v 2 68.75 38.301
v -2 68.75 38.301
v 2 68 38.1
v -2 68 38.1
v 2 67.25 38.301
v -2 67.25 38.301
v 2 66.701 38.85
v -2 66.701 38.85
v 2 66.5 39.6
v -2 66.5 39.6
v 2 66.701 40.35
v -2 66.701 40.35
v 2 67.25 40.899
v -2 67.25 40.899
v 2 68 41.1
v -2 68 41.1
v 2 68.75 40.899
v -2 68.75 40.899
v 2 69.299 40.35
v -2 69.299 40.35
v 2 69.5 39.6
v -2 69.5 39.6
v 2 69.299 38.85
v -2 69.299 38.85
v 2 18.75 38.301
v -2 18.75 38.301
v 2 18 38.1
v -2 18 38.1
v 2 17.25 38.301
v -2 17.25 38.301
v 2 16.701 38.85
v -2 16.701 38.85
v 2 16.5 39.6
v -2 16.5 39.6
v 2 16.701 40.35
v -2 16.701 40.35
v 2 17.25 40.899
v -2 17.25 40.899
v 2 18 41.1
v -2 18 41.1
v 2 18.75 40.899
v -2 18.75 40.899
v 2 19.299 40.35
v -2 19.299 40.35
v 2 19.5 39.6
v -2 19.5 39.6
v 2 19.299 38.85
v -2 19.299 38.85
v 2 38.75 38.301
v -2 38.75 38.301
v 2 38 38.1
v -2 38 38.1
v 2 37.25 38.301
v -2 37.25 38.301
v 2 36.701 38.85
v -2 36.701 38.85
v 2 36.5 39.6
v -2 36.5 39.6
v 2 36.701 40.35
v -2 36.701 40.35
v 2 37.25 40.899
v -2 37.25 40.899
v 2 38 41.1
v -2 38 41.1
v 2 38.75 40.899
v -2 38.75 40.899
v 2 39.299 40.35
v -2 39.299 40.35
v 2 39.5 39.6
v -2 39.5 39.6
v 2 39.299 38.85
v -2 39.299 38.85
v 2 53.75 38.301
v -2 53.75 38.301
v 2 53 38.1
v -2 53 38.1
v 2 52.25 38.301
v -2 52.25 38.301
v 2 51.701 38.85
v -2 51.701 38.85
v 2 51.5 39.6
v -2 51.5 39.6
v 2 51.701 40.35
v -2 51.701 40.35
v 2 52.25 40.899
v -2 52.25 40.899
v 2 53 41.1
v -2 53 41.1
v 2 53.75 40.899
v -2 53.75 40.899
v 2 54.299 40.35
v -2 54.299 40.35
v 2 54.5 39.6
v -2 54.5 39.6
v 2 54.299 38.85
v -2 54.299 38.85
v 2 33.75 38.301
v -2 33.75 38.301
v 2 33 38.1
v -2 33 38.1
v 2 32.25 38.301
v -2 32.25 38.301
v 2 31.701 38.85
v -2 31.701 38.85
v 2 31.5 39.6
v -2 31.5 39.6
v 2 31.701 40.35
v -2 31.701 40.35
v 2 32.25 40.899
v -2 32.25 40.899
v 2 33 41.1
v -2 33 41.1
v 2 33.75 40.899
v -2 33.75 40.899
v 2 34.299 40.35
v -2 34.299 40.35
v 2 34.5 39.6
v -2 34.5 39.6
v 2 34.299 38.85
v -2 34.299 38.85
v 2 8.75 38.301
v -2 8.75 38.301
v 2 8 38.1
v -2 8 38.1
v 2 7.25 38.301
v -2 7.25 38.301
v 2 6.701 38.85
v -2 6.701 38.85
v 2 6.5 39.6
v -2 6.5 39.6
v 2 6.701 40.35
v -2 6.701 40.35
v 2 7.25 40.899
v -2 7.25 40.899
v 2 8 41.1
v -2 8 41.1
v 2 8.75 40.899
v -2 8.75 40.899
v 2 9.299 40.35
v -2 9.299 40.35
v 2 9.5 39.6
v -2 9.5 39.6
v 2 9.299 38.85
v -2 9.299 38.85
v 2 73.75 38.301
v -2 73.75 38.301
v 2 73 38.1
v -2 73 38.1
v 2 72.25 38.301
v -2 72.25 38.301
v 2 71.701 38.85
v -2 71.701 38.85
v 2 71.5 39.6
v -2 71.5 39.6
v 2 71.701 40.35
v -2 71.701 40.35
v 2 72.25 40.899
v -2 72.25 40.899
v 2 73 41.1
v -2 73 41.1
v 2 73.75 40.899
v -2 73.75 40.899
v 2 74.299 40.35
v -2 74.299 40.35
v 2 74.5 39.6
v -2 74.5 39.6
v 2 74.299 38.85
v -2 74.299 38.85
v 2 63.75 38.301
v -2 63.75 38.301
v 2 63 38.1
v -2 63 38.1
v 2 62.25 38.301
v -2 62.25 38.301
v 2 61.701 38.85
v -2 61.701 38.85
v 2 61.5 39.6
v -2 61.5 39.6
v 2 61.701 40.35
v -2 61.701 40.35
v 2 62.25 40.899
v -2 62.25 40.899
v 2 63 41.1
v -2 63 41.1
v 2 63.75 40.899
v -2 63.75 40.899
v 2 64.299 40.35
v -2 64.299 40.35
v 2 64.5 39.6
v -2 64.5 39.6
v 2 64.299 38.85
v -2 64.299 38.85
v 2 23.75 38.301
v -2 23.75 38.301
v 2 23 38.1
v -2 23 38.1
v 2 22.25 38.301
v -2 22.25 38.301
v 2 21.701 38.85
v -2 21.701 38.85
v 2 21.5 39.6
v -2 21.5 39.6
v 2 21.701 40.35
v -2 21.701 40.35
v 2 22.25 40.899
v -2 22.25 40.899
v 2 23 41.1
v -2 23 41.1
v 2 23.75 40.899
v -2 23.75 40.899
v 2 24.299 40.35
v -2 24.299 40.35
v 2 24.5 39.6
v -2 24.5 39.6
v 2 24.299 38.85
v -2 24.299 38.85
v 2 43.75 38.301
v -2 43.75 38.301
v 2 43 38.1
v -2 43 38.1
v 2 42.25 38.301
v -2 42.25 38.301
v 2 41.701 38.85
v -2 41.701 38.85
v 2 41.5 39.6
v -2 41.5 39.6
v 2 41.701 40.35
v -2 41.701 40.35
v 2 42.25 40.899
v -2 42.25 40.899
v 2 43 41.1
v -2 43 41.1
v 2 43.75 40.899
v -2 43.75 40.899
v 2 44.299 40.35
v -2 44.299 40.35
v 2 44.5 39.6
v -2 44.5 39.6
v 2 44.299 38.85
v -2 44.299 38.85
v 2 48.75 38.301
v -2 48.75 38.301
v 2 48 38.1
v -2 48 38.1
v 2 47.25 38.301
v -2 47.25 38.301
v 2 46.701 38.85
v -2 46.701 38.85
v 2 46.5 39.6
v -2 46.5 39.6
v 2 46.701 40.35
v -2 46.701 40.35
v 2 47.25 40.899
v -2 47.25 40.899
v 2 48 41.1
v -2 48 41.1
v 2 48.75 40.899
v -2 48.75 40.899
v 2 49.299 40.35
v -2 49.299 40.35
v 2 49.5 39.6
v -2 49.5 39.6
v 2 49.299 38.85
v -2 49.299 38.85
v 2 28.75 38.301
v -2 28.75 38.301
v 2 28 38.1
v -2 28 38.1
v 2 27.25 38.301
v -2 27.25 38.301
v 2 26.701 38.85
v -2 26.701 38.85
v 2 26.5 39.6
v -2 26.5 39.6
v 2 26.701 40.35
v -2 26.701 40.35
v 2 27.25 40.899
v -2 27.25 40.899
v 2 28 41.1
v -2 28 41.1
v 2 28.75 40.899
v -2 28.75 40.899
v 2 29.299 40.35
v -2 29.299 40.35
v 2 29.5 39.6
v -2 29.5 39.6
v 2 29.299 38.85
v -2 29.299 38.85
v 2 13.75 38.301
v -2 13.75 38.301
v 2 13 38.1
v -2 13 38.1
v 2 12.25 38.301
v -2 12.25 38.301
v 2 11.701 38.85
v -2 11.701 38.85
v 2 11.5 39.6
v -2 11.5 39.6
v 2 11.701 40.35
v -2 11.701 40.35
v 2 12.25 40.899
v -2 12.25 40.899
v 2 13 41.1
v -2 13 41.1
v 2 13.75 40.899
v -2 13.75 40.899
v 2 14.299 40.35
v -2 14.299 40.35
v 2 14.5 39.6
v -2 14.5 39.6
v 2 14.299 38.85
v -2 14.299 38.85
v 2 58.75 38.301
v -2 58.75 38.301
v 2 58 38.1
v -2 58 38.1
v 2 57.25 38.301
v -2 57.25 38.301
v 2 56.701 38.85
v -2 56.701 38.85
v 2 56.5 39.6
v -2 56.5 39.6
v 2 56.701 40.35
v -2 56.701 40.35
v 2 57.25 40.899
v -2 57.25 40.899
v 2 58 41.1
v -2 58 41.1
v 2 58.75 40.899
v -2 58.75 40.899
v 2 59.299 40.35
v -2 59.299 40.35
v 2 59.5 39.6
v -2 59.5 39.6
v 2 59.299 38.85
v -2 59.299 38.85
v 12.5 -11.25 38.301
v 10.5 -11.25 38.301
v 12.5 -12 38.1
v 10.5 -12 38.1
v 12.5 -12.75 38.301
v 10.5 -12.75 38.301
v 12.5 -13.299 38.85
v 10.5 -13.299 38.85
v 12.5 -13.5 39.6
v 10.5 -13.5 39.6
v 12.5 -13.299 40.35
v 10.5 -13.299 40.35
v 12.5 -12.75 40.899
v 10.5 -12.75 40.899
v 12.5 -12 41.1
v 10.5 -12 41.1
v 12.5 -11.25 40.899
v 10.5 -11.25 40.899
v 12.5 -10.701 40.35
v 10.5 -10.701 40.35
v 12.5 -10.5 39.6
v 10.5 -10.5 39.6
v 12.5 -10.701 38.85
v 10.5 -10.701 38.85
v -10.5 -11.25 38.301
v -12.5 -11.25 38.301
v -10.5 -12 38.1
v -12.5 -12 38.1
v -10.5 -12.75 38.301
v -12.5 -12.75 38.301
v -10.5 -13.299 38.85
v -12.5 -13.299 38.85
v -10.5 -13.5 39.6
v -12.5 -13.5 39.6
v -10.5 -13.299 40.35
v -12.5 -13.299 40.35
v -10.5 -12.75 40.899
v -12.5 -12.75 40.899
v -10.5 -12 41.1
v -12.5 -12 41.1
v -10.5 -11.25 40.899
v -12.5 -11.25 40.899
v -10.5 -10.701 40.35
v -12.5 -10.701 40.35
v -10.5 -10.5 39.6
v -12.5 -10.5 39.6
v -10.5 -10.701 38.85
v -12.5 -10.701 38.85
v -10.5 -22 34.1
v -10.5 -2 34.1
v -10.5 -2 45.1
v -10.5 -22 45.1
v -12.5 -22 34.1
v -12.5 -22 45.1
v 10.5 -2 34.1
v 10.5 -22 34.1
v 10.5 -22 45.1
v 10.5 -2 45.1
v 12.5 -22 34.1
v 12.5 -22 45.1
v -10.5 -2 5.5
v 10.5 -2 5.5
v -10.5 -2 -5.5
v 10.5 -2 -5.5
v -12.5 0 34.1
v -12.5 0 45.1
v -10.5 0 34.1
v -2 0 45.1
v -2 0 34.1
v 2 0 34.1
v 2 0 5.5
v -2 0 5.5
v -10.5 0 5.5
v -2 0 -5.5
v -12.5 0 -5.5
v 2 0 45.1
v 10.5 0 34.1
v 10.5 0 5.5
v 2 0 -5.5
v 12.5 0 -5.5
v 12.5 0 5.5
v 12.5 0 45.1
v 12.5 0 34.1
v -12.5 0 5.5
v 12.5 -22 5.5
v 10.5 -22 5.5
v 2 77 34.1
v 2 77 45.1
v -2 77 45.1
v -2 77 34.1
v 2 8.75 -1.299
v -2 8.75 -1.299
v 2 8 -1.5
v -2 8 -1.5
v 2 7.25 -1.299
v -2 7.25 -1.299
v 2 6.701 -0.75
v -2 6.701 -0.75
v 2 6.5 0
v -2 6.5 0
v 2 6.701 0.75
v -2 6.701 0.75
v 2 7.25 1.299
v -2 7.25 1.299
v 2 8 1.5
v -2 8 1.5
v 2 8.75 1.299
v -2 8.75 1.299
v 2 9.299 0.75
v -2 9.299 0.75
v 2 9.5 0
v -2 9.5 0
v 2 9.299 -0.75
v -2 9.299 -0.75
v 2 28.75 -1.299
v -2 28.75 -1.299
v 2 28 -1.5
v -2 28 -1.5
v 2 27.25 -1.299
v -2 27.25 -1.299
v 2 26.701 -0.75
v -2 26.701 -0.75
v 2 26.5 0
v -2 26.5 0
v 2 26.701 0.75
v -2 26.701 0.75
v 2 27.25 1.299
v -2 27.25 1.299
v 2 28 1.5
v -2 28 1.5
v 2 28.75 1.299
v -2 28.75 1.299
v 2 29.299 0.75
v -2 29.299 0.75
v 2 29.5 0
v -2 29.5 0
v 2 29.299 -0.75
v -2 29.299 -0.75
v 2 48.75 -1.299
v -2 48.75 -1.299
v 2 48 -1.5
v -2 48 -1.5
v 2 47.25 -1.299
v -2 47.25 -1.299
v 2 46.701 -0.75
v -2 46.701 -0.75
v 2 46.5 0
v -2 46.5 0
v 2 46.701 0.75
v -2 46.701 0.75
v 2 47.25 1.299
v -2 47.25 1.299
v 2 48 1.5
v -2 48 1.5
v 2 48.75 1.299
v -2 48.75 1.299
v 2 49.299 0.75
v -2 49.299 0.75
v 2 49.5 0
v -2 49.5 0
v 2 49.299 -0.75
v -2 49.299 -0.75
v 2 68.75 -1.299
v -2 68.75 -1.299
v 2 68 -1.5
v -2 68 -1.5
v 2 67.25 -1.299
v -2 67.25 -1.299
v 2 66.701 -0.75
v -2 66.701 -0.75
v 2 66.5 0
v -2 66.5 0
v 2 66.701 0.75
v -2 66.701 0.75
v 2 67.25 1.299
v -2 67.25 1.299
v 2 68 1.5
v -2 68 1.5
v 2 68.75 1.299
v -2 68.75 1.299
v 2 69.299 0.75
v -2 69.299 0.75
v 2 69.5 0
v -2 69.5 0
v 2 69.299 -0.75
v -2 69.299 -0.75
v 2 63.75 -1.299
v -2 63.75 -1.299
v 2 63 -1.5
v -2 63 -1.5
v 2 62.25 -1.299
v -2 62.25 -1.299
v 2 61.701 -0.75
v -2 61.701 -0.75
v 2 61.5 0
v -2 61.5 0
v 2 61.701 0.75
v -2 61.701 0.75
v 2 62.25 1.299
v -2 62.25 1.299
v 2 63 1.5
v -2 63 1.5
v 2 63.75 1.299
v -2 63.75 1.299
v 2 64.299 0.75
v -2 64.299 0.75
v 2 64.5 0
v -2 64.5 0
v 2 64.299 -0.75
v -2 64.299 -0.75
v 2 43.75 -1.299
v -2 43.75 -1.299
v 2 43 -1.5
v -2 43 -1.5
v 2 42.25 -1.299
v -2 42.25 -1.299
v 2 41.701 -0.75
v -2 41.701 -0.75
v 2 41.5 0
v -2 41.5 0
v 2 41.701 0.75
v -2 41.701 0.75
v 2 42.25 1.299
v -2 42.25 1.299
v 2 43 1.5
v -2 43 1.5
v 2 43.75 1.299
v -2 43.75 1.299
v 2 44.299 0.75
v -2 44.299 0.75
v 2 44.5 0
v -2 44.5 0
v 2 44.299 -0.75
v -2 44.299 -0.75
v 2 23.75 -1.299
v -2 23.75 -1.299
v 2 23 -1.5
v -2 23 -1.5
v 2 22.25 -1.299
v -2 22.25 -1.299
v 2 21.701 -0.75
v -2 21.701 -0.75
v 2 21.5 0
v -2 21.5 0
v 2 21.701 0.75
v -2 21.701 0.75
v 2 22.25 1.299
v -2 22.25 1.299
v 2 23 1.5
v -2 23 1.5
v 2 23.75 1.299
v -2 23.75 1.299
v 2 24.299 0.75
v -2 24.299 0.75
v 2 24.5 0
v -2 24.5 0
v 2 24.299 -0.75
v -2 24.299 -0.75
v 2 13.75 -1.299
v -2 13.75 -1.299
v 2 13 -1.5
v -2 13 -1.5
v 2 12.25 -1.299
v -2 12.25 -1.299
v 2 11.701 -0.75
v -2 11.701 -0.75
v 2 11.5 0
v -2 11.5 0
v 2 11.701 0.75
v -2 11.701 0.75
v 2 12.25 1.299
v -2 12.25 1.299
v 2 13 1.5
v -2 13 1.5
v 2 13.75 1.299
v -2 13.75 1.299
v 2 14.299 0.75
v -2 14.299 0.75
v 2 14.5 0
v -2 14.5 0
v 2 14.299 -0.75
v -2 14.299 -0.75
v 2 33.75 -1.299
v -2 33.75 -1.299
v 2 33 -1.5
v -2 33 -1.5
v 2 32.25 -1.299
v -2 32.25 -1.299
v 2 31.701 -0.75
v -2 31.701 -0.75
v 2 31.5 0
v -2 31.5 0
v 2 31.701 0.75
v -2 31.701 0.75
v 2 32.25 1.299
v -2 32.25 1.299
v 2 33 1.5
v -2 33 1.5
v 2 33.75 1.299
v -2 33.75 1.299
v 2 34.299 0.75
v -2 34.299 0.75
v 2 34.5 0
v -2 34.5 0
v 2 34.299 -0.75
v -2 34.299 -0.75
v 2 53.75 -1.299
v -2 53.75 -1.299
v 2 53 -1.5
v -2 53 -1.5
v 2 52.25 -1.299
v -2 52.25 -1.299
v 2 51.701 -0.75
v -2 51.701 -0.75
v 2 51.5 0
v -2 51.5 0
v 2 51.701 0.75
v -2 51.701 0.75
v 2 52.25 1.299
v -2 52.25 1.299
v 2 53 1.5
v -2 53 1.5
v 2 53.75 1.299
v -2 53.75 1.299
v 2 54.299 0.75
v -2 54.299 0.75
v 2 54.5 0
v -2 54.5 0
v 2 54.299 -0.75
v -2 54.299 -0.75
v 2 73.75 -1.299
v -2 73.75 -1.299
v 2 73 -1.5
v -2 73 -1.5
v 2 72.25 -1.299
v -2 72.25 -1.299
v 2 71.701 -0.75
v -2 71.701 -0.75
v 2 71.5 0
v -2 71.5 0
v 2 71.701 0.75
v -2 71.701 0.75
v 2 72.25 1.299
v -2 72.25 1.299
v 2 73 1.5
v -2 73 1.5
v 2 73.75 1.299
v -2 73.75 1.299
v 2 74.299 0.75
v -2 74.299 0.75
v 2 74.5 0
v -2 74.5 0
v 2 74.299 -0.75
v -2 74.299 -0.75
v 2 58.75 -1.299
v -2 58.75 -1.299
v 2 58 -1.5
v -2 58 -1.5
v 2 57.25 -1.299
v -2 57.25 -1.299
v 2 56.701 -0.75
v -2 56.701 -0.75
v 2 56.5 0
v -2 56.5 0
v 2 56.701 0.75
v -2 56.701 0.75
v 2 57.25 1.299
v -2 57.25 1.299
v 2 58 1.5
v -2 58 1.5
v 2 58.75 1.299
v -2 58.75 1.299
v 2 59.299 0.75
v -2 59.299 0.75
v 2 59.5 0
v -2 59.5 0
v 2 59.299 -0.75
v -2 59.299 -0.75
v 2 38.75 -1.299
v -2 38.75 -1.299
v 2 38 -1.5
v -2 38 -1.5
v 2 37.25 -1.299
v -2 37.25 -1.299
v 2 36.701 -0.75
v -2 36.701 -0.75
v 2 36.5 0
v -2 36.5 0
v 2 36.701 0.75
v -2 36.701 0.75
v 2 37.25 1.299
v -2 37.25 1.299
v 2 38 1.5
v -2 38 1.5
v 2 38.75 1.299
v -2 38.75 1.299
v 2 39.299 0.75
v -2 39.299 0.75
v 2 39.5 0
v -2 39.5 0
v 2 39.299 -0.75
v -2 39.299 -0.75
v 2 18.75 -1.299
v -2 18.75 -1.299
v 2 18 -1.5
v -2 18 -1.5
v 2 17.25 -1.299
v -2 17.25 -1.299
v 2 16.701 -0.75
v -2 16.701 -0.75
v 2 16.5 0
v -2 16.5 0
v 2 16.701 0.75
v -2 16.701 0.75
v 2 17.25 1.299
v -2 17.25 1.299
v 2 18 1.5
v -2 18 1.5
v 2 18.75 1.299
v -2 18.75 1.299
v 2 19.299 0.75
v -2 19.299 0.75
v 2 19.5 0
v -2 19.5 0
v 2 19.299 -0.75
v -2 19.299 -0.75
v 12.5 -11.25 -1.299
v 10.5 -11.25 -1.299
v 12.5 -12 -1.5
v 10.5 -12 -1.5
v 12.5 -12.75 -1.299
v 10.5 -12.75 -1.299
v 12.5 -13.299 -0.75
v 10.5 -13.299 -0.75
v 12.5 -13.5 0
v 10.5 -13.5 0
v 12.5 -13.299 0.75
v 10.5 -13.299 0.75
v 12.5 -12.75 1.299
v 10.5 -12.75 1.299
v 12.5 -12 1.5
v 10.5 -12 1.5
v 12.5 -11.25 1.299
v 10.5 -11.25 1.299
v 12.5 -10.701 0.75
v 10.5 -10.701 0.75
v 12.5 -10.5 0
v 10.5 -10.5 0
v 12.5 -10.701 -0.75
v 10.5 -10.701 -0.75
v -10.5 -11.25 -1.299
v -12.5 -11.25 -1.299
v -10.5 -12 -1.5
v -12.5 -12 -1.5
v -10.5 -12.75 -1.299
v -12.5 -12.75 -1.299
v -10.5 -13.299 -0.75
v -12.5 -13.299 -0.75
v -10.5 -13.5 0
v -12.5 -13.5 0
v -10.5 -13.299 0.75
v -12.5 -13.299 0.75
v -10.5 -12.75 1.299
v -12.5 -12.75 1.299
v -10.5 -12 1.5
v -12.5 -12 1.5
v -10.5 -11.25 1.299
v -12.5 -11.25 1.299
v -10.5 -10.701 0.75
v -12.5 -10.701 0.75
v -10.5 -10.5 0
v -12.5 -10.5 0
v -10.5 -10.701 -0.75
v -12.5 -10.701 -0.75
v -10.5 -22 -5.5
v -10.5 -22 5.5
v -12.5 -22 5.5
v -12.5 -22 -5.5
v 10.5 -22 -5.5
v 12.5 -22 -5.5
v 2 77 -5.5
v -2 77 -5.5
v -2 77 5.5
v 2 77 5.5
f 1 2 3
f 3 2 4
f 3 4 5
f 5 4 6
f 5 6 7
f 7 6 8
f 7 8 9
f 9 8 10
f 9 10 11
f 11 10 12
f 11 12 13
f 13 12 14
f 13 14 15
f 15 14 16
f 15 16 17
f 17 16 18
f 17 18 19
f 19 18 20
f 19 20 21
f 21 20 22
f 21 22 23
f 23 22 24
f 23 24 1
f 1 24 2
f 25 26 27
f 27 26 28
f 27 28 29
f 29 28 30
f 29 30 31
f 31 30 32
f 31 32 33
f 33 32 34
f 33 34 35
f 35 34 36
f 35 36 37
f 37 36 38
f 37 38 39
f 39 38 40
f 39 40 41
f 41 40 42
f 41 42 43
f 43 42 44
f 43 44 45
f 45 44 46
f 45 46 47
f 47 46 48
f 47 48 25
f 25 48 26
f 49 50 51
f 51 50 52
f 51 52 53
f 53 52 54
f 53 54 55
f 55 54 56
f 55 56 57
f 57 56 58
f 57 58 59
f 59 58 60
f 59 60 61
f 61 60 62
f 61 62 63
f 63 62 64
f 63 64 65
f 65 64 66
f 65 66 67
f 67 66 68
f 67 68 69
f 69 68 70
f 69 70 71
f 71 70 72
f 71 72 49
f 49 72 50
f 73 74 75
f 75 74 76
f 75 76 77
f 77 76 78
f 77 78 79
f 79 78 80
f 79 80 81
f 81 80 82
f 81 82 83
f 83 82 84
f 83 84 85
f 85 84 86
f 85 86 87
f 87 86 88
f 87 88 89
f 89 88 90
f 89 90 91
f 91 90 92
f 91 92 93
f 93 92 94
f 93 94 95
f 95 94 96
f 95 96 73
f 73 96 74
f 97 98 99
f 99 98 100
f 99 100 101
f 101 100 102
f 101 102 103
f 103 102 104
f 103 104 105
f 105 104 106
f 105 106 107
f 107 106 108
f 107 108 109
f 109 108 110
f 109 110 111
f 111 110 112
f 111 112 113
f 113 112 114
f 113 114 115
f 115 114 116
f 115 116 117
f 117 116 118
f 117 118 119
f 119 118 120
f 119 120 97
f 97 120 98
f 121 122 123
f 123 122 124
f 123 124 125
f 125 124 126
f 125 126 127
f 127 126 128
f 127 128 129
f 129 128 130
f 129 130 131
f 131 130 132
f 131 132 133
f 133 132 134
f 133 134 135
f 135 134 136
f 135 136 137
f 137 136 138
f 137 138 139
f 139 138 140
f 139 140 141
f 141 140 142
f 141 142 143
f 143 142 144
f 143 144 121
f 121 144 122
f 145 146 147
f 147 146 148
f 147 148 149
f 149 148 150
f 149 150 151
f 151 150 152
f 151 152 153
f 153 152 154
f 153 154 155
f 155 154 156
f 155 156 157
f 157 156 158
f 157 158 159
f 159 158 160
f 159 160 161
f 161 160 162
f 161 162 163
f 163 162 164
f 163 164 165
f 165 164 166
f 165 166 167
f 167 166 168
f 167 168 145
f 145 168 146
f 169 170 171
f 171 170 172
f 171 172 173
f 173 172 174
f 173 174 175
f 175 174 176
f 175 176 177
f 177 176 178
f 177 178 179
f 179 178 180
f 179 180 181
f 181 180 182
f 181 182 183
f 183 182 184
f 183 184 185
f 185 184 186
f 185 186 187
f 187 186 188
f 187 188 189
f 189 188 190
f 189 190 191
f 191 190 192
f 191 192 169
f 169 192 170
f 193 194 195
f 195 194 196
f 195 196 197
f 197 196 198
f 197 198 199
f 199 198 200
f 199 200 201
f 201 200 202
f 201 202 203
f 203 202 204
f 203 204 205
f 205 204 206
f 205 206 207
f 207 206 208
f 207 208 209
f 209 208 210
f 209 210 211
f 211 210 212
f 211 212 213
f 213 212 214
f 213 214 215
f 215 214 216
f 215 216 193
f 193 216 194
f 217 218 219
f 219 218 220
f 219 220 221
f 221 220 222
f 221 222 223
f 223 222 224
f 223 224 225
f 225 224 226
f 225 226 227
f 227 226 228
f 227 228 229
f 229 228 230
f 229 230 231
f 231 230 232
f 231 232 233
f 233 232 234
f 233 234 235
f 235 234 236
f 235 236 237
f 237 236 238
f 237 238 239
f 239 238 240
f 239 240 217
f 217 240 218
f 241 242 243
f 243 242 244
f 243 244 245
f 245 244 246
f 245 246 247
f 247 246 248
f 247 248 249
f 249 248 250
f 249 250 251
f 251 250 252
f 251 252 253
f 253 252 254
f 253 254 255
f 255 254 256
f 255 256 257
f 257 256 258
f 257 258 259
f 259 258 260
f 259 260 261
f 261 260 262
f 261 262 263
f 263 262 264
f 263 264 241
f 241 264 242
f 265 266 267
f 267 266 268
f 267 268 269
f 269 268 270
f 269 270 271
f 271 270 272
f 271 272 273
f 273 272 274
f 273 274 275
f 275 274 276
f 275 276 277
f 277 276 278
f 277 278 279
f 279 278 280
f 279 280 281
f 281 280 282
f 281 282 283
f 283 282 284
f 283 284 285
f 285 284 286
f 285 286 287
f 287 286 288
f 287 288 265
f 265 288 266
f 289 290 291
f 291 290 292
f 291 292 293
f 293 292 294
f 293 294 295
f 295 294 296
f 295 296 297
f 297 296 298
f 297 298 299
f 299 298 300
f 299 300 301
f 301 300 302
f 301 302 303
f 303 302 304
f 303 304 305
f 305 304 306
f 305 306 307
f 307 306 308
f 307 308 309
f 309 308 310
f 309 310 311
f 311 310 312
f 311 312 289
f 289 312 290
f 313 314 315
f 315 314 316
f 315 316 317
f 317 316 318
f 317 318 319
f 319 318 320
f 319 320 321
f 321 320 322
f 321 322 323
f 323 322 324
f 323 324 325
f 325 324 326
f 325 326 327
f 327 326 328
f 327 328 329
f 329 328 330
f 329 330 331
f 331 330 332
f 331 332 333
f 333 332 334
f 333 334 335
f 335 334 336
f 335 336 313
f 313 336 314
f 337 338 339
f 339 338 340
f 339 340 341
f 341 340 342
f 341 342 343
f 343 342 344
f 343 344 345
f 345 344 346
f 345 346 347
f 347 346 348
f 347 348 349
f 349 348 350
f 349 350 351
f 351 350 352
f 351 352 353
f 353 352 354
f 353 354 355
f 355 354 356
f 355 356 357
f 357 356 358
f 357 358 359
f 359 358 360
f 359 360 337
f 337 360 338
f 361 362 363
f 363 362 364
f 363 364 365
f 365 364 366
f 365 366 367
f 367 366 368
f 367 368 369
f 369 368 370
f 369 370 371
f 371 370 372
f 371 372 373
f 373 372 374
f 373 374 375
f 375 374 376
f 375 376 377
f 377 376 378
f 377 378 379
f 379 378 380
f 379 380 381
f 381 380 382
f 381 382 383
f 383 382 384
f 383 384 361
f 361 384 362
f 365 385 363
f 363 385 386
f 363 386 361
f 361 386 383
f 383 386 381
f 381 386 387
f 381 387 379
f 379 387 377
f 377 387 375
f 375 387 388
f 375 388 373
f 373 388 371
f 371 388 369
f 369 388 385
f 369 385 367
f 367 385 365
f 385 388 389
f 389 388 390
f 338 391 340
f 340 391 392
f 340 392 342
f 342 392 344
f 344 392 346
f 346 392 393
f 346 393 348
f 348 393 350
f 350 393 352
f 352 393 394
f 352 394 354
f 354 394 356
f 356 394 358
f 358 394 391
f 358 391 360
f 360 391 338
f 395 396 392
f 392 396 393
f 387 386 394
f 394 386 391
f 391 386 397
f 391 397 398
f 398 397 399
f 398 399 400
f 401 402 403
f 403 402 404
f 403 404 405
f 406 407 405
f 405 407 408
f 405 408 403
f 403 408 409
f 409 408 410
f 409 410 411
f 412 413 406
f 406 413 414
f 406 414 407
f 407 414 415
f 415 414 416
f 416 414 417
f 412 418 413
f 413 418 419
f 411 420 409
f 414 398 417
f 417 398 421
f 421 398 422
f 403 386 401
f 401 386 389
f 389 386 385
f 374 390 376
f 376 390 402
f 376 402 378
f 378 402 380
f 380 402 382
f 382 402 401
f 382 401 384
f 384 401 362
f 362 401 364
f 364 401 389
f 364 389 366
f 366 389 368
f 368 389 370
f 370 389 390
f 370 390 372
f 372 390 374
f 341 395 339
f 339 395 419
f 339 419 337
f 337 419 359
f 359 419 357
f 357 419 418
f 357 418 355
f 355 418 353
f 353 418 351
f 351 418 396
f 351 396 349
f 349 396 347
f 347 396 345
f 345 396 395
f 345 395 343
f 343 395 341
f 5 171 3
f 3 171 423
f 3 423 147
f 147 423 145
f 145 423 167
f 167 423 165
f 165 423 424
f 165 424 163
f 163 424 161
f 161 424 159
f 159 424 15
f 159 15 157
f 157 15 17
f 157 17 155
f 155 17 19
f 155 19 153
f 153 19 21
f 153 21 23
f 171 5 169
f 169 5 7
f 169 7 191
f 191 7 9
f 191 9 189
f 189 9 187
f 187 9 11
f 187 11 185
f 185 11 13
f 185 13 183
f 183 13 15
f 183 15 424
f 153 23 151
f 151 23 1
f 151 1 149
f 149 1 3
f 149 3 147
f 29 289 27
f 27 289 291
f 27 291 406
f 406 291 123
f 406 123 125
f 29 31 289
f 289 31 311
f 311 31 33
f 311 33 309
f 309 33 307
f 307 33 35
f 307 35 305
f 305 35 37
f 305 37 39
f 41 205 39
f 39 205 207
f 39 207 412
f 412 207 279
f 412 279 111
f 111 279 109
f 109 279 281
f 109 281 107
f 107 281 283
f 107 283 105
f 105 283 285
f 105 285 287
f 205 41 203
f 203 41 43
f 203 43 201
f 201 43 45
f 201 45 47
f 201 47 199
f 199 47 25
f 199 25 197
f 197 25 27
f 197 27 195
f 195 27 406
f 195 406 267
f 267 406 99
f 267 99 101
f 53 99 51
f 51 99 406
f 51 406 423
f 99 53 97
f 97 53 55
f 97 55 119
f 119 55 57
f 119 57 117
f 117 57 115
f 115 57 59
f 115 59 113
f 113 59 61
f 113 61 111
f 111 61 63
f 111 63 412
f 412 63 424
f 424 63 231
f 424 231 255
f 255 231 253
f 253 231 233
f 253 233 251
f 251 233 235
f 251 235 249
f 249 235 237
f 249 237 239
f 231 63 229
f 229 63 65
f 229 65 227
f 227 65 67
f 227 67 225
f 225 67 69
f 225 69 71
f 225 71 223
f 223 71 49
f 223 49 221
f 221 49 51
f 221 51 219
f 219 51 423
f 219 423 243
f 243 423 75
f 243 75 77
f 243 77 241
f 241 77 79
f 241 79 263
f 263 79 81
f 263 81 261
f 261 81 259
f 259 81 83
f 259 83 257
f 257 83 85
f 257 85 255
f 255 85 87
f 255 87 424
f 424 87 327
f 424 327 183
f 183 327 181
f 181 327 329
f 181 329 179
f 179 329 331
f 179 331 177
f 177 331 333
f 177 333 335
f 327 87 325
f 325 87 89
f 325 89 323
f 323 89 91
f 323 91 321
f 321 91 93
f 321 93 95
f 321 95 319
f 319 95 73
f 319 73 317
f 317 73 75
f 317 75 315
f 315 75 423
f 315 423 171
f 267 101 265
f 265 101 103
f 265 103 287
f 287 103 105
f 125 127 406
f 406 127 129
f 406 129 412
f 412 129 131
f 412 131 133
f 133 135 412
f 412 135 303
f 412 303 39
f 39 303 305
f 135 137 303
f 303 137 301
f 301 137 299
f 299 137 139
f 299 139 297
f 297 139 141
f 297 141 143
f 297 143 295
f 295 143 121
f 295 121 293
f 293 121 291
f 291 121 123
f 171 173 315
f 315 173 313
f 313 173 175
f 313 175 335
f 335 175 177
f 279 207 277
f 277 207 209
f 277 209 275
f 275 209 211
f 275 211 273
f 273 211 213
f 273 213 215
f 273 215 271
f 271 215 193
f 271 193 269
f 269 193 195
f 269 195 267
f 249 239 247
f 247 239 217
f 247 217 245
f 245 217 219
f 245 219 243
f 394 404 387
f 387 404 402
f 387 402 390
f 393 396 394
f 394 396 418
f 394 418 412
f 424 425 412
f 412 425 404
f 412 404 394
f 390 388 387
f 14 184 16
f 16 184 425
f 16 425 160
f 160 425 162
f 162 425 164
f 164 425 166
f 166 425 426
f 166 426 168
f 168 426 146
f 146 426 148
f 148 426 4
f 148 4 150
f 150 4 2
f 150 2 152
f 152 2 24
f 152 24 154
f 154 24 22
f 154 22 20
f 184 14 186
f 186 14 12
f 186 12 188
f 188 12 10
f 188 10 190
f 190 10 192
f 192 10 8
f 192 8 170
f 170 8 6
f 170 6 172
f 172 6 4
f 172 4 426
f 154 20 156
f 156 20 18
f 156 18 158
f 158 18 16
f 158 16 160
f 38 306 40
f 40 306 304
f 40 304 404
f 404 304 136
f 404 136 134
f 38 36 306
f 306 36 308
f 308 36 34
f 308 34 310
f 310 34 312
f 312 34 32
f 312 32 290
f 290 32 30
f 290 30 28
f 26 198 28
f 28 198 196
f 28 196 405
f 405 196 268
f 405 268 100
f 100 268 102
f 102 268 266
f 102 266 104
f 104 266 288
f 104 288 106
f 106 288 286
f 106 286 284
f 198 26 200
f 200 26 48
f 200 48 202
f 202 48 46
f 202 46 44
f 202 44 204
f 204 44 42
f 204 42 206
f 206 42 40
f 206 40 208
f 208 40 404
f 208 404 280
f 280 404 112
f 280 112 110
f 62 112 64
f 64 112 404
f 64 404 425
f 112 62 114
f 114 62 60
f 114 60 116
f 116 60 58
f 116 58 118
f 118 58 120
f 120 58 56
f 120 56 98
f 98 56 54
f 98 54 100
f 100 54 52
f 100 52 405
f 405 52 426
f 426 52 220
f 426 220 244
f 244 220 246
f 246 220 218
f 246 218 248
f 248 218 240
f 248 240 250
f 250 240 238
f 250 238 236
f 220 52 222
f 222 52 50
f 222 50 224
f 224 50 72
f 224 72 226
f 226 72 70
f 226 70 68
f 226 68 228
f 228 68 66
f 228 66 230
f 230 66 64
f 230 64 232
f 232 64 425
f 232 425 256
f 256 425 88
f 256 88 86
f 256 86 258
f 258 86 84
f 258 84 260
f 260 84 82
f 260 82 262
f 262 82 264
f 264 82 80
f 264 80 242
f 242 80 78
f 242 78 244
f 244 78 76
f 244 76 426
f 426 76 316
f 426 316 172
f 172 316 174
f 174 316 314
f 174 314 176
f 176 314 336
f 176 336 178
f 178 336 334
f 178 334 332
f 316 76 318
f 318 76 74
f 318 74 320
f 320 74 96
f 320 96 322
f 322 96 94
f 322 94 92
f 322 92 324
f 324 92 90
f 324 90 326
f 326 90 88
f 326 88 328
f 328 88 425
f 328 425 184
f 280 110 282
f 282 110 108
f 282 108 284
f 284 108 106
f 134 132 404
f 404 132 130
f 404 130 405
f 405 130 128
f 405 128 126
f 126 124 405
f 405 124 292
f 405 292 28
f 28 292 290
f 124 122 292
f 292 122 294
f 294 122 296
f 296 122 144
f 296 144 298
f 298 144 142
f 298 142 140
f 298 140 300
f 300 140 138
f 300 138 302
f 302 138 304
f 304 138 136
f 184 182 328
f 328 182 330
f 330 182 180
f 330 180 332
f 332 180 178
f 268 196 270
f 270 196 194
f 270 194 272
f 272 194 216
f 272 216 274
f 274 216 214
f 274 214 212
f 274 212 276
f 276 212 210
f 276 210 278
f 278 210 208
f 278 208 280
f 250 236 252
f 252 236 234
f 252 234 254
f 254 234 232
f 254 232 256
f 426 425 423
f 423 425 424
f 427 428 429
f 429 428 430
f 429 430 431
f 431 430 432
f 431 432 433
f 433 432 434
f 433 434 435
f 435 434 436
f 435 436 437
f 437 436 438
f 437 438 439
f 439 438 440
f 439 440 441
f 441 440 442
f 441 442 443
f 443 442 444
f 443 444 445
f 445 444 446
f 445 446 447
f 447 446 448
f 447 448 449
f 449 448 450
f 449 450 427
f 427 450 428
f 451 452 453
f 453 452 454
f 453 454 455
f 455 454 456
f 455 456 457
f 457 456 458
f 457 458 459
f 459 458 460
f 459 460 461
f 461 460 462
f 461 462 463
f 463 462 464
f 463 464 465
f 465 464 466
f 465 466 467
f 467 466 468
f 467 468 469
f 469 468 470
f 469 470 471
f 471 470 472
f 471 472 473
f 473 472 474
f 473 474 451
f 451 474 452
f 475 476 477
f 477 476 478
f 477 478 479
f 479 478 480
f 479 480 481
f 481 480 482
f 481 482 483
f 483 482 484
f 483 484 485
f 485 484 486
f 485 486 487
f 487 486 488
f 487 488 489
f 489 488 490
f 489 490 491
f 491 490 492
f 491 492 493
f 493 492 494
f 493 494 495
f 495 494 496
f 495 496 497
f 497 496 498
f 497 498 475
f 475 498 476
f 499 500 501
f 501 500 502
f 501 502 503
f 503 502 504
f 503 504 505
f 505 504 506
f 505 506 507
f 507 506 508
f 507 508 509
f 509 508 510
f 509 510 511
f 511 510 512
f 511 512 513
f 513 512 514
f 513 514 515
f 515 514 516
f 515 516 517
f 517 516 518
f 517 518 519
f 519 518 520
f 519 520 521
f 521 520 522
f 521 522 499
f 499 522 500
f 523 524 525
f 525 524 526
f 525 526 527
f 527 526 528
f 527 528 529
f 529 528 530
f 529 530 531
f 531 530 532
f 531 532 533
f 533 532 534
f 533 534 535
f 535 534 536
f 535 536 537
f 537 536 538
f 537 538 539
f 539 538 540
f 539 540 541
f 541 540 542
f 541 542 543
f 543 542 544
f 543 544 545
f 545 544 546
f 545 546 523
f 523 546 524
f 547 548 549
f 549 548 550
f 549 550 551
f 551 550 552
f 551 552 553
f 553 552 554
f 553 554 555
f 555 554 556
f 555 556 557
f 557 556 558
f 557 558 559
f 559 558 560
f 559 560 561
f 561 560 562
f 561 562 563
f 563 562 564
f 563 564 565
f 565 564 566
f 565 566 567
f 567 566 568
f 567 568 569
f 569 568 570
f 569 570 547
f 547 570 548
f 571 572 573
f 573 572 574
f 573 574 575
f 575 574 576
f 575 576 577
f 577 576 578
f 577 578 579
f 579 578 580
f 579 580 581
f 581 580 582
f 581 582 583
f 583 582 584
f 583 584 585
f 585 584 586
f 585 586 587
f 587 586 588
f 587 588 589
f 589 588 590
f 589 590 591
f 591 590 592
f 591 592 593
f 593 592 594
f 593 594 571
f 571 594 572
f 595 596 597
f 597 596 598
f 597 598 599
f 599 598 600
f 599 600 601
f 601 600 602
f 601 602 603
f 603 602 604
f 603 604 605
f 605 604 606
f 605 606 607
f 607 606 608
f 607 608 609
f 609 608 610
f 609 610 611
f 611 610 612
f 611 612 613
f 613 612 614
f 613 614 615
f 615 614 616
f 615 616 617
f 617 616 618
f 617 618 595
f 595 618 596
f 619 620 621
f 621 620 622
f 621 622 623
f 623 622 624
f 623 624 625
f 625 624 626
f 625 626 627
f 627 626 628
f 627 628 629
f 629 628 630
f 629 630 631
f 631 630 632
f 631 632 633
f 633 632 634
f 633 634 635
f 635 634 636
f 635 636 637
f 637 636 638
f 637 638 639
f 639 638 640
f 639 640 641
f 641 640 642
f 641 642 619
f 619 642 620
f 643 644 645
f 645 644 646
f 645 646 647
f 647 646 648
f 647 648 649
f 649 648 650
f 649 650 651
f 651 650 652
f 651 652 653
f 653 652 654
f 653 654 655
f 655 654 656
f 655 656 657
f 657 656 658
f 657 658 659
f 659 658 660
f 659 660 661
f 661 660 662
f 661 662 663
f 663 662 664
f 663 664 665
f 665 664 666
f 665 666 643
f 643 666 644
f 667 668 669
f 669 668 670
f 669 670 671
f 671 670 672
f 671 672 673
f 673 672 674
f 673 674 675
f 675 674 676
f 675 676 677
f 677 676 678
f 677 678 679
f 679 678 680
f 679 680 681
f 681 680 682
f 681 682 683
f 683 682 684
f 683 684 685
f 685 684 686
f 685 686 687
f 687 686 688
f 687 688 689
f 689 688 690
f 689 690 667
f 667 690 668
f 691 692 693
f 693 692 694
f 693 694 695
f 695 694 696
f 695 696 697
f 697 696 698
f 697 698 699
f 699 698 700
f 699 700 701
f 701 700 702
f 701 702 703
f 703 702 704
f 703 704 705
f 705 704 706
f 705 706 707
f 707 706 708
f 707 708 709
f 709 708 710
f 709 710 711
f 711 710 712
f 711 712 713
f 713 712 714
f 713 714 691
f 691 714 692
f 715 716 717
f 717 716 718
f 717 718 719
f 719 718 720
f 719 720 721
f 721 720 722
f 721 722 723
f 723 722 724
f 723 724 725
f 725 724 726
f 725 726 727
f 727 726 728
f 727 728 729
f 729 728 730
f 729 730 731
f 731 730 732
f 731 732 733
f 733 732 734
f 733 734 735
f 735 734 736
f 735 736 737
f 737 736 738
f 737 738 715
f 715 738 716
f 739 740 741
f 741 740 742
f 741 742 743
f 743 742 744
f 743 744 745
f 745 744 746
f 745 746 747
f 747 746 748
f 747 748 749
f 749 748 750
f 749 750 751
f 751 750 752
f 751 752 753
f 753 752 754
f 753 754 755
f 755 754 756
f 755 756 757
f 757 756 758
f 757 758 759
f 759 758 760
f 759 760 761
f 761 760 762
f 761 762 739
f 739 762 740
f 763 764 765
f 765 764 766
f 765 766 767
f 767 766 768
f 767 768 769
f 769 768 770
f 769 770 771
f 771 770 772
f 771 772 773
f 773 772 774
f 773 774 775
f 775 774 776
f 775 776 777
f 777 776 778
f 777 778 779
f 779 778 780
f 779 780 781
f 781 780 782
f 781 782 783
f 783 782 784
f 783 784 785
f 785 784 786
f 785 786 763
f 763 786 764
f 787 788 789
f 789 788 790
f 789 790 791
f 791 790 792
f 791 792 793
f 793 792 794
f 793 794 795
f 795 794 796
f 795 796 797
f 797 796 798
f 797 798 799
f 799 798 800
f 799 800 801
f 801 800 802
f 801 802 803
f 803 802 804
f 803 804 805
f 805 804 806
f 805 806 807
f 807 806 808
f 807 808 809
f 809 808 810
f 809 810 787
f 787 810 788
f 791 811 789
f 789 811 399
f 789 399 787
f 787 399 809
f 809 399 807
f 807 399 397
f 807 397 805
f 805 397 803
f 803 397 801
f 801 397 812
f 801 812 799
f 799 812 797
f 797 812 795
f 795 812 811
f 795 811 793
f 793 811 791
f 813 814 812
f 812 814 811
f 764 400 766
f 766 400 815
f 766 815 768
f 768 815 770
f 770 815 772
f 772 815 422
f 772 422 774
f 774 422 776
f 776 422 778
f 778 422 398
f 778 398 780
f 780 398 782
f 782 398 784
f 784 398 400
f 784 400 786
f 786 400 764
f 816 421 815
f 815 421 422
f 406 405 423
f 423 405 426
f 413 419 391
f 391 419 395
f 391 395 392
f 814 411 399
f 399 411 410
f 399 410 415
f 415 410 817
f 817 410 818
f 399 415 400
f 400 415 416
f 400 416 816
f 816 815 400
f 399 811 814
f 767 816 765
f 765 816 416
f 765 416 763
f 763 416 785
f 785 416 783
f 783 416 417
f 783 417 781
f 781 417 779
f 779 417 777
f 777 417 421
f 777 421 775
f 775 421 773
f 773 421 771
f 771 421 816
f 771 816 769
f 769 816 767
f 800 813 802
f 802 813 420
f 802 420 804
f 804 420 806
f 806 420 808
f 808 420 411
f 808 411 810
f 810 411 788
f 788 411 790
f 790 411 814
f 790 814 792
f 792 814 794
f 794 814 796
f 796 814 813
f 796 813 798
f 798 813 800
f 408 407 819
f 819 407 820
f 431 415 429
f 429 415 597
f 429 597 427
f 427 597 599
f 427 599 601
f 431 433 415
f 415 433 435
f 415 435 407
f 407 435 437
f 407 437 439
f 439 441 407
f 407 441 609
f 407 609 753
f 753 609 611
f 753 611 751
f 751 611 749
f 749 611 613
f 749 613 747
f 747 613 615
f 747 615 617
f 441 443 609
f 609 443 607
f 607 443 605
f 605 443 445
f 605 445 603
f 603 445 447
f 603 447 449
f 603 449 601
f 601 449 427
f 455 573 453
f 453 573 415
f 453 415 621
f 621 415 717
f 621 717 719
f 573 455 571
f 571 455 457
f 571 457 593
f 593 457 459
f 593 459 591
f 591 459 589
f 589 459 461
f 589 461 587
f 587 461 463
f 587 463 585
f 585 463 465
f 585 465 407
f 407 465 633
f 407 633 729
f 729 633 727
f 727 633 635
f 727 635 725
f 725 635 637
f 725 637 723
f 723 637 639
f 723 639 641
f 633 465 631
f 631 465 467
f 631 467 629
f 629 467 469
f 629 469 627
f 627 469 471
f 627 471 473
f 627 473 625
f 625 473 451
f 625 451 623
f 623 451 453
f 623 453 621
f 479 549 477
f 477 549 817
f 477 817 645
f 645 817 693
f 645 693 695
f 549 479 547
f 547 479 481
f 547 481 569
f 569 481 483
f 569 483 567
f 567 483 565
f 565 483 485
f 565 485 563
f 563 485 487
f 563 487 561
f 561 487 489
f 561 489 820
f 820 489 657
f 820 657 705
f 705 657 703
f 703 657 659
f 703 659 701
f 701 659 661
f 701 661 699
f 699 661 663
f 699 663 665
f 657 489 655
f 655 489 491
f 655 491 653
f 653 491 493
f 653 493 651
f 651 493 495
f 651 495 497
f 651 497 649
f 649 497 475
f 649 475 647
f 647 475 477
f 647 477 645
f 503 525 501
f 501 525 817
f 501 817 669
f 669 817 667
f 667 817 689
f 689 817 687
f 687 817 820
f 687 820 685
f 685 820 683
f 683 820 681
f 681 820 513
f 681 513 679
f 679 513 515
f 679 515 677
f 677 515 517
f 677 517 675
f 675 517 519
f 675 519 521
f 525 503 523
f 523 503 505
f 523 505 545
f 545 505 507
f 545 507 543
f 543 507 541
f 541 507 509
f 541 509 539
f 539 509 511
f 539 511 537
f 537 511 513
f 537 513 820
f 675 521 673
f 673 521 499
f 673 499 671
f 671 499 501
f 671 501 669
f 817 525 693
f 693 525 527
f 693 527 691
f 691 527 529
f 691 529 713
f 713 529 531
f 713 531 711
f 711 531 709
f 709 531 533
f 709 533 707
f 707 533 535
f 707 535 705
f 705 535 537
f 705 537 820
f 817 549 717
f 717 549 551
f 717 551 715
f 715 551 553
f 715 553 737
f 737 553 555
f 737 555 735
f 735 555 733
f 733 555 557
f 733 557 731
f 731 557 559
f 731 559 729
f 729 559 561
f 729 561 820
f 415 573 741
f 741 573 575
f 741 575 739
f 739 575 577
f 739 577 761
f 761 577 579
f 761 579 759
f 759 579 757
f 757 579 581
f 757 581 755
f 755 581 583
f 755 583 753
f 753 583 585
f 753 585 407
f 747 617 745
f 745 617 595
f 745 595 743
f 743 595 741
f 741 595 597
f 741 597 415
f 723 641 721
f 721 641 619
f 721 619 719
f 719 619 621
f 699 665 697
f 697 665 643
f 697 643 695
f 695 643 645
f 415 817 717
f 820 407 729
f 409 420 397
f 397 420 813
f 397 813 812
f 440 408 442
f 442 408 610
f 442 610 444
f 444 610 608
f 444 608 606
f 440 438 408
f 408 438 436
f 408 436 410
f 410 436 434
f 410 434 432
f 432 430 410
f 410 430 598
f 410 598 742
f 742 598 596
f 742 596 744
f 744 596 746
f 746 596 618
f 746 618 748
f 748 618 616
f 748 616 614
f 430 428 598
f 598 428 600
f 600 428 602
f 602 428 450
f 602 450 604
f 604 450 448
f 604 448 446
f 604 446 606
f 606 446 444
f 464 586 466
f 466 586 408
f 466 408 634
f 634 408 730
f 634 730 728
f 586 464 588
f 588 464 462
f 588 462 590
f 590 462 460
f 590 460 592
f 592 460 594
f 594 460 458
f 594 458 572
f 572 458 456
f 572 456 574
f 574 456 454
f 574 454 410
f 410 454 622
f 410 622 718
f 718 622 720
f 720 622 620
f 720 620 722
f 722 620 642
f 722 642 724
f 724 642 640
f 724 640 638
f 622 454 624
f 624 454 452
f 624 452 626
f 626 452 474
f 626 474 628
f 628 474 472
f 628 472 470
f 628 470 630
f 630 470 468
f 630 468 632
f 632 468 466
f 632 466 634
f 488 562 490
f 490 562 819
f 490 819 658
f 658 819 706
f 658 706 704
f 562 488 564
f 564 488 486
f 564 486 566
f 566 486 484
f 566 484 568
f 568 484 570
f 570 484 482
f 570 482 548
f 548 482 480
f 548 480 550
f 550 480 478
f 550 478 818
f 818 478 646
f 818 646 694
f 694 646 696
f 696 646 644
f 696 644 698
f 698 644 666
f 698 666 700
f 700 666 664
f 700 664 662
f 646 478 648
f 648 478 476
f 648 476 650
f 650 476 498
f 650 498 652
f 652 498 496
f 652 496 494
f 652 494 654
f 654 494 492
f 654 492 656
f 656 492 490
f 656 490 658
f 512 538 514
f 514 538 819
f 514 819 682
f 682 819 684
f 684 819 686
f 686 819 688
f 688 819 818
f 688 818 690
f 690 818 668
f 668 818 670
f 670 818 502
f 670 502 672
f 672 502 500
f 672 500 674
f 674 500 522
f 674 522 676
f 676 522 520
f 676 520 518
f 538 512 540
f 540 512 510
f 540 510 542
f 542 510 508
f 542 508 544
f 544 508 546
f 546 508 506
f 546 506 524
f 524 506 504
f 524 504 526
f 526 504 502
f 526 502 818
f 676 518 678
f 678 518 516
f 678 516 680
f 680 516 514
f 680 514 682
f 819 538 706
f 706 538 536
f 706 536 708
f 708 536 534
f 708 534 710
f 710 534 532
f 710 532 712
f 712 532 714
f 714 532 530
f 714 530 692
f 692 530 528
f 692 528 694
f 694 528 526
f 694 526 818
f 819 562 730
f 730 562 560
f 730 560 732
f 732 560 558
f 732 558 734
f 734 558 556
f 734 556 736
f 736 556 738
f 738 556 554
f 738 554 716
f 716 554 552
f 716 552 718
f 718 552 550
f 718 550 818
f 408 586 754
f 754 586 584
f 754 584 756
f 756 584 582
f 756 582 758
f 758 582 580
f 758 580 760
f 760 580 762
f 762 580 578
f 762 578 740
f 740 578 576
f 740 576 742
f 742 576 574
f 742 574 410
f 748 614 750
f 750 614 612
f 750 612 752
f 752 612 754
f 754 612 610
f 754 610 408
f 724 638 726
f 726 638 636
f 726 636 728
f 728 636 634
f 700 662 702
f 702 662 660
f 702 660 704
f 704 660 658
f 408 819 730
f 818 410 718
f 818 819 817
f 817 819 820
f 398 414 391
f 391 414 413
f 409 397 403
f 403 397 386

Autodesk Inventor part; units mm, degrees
ref_plane "YZ Plane" through (0, 0, 0) normal (1, 0, 0) x (0, 1, 0)
ref_plane "XZ Plane" through (0, 0, 0) normal (0, 1, 0) x (-1, 0, 0)
ref_plane "XY Plane" through (0, 0, 0) normal (0, 0, 1) x (1, 0, 0)
sketch "스케치4" plane through (0, 0, 0) normal (0, 1, 0) x (-1, 0, 0)
  line L0 (-2, 5.5) -> (-2, -5.5)
  line L1 (-2, -5.5) -> (2, -5.5)
  line L2 (2, -5.5) -> (2, 5.5)
  line L3 (2, 5.5) -> (-2, 5.5)
  line L4 (-2, 5.5) -> (2, -5.5) construction
  line L5 (-2, -5.5) -> (2, 5.5) construction
  line L6 (15.7602, 19.8) -> (-23.0581, 19.8) construction
  line L7 (-2, 34.1) -> (-2, 45.1)
  line L8 (-2, 45.1) -> (2, 45.1)
  line L9 (2, 45.1) -> (2, 34.1)
  line L10 (2, 34.1) -> (-2, 34.1)
  line L11 (-2, 34.1) -> (2, 45.1) construction
  line L12 (-2, 45.1) -> (2, 34.1) construction
  point P0 (0, 0)
  point P1 (0, 0)
  point P2 (0, 39.6)
  point P3 (0, 39.6)
  dimension "d12" = 11
  dimension "d13" = 4
  dimension "d42" = 19.8
extrude "돌출3" add sketch "스케치4" along normal blind 77
sketch "스케치5" plane through (0, 0, 0) normal (0, -1, 0) x (1, 0, 0)
  line L0 (-10.5, -5.5) -> (10.5, -5.5)
  line L1 (10.5, -5.5) -> (10.5, 5.5)
  line L2 (10.5, 5.5) -> (-10.5, 5.5)
  line L3 (-10.5, 5.5) -> (-10.5, -5.5)
  line L4 (-10.5, -5.5) -> (10.5, 5.5) construction
  line L5 (10.5, -5.5) -> (-10.5, 5.5) construction
  line L6 (0, 5.5) -> (0, -5.5) construction
  line L7 (10.5, 5.5) -> (12.5, 5.5)
  line L8 (12.5, 5.5) -> (12.5, -5.5)
  line L9 (12.5, -5.5) -> (10.5, -5.5)
  line L10 (-10.5, 5.5) -> (-12.5, 5.5)
  line L11 (-12.5, 5.5) -> (-12.5, -5.5)
  line L12 (-12.5, -5.5) -> (-10.5, -5.5)
  line L13 (-22.4262, 19.8) -> (40.7349, 19.8) construction
  line L14 (-10.5, 45.1) -> (10.5, 45.1)
  line L15 (10.5, 45.1) -> (10.5, 34.1)
  line L16 (10.5, 34.1) -> (-10.5, 34.1)
  line L17 (-10.5, 34.1) -> (-10.5, 45.1)
  line L18 (-10.5, 45.1) -> (10.5, 34.1) construction
  line L19 (10.5, 45.1) -> (-10.5, 34.1) construction
  line L20 (0, 34.1) -> (0, 45.1) construction
  line L21 (10.5, 34.1) -> (12.5, 34.1)
  line L22 (12.5, 34.1) -> (12.5, 45.1)
  line L23 (12.5, 45.1) -> (10.5, 45.1)
  line L24 (-10.5, 34.1) -> (-12.5, 34.1)
  line L25 (-12.5, 34.1) -> (-12.5, 45.1)
  line L26 (-12.5, 45.1) -> (-10.5, 45.1)
  point P0 (0, 0)
  point P1 (0, 0)
  point P2 (0, 39.6)
  point P3 (0, 39.6)
  dimension "d16" = 21
  dimension "d17" = 11
  dimension "d18" = 2
  dimension "d43" = 19.8
extrude "돌출4" add sketch "스케치5" along normal blind 2
extrude "돌출5" add sketch "스케치5" along normal blind 22 contours L12 L11 L10 L3 | L1 L7 L8 L9 | L17 L24 L25 L26 | L23 L22 L21 L15
sketch "스케치6" plane through (-12.5, 0, -5.5) normal (-1, 0, 0) x (0, 0, 1)
  line L0 (11, 0) -> (0, 0) projected
  line L1 (0, 0) -> (0, -22) projected
  line L2 (11, -22) -> (0, -22) projected
  line L3 (11, 0) -> (11, -22) projected
  circle A0 centre (5.5, -12) radius 1.5
  line L4 (25.3, -63.5481) -> (25.3, 115.0897)
  line L5 (11, 0) -> (11, 77) projected
  line L6 (39.6, -22) -> (50.6, -22)
  circle A1 centre (45.1, -12) radius 1.5
  point P0 (5.5, 0)
  point P1 (25.3, 25.7708)
  dimension "d23" = 3
  dimension "d24" = 10
  dimension "d44" = 14.3
extrude "돌출6" cut sketch "스케치6" against normal through all contours A0 | A1
sketch "스케치7" plane through (-2, 77, -5.5) normal (-1, 0, 0) x (0, 0, 1)
  line L0 (0, -77) -> (11, -77) projected
  line L1 (11, -77) -> (11, 0) projected
  line L2 (0, 0) -> (11, 0) projected
  line L3 (0, -77) -> (0, 0) projected
  line L4 (0, -73) -> (11, -73) construction
  line L5 (0, -4) -> (11, -4) construction
  line L6 (0, -69) -> (11, -69) construction
  circle A0 centre (5.5, -4) radius 1.5
  circle A1 centre (5.5, -69) radius 1.5
  line L7 (5.5, -69) -> (5.5, -4) construction
  circle A2 centre (5.5, -64) radius 1.5
  circle A3 centre (5.5, -59) radius 1.5
  circle A4 centre (5.5, -54) radius 1.5
  circle A5 centre (5.5, -49) radius 1.5
  circle A6 centre (5.5, -44) radius 1.5
  circle A7 centre (5.5, -39) radius 1.5
  circle A8 centre (5.5, -34) radius 1.5
  circle A9 centre (5.5, -29) radius 1.5
  circle A10 centre (5.5, -24) radius 1.5
  circle A11 centre (5.5, -19) radius 1.5
  circle A12 centre (5.5, -14) radius 1.5
  circle A13 centre (5.5, -9) radius 1.5
  line L8 (25.3, -134.2838) -> (25.3, 22.0863) construction
  line L9 (50.6, -77) -> (39.6, -77)
  line L10 (39.6, -77) -> (39.6, 0)
  line L11 (50.6, 0) -> (39.6, 0)
  line L12 (50.6, -77) -> (50.6, 0)
  line L13 (50.6, -73) -> (39.6, -73) construction
  line L14 (50.6, -4) -> (39.6, -4) construction
  line L15 (50.6, -69) -> (39.6, -69) construction
  circle A14 centre (45.1, -4) radius 1.5
  circle A15 centre (45.1, -69) radius 1.5
  line L16 (45.1, -69) -> (45.1, -4) construction
  circle A16 centre (45.1, -64) radius 1.5
  circle A17 centre (45.1, -59) radius 1.5
  circle A18 centre (45.1, -54) radius 1.5
  circle A19 centre (45.1, -49) radius 1.5
  circle A20 centre (45.1, -44) radius 1.5
  circle A21 centre (45.1, -39) radius 1.5
  circle A22 centre (45.1, -34) radius 1.5
  circle A23 centre (45.1, -29) radius 1.5
  circle A24 centre (45.1, -24) radius 1.5
  circle A25 centre (45.1, -19) radius 1.5
  circle A26 centre (45.1, -14) radius 1.5
  circle A27 centre (45.1, -9) radius 1.5
  point P0 (5.5, -77)
  point P1 (45.1, -77)
  dimension "d27" = 4
  dimension "d28" = 4
  dimension "d29" = 4
  dimension "d30" = 3
  dimension "d31" = 5.5
  dimension "d32" = 3
  dimension "d35" = 5
  dimension "d45" = 14.3
extrude "돌출7" cut sketch "스케치7" against normal through all contours A0 | A1 | A2 | A3 | A4 | A5 | A6 | A7 | A8 | A9 | A10 | A11 | A12 | A13 | A14 | A15 | A16 | A17 | A18 | A19 | A20 | A21 | A22 | A23 | A24 | A25 | A26 | A27
sketch "스케치9" plane through (2, 77, 34.1) normal (0, 0, -1) x (-1, 0, 0)
  line L0 (-8.5, -79) -> (-8.5, -77)
  line L1 (-10.5, -77) -> (0, -77) projected
  line L2 (-8.5, -79) -> (12.5, -79) projected
  line L3 (12.5, -79) -> (12.5, -77)
  line L4 (14.5, -77) -> (4, -77) projected
  line L5 (14.5, -77) -> (4, -77) projected
  line L6 (4, -77) -> (4, 0) projected
  line L7 (0, 0) -> (4, 0) projected
  line L8 (0, -77) -> (0, 0) projected
  line L9 (0, -77) -> (-10.5, -77) projected
  line L10 (-10.5, -77) -> (-10.5, -99) projected
  line L11 (-8.5, -99) -> (-10.5, -99) projected
  line L12 (-8.5, -79) -> (-8.5, -99) projected
  line L13 (12.5, -79) -> (-8.5, -79) projected
  line L14 (12.5, -79) -> (12.5, -99) projected
  line L15 (14.5, -99) -> (12.5, -99) projected
  line L16 (14.5, -77) -> (14.5, -99) projected
  line L17 (0, -77) -> (4, -77)
  point P0 (2, -77)
  point P1 (4, -77)
extrude "돌출8" add sketch "스케치9" along normal up to surface (28.6 mm away) contours L0 L1 L17 L4 L3 L2
properties part number "catcher_2ea"
